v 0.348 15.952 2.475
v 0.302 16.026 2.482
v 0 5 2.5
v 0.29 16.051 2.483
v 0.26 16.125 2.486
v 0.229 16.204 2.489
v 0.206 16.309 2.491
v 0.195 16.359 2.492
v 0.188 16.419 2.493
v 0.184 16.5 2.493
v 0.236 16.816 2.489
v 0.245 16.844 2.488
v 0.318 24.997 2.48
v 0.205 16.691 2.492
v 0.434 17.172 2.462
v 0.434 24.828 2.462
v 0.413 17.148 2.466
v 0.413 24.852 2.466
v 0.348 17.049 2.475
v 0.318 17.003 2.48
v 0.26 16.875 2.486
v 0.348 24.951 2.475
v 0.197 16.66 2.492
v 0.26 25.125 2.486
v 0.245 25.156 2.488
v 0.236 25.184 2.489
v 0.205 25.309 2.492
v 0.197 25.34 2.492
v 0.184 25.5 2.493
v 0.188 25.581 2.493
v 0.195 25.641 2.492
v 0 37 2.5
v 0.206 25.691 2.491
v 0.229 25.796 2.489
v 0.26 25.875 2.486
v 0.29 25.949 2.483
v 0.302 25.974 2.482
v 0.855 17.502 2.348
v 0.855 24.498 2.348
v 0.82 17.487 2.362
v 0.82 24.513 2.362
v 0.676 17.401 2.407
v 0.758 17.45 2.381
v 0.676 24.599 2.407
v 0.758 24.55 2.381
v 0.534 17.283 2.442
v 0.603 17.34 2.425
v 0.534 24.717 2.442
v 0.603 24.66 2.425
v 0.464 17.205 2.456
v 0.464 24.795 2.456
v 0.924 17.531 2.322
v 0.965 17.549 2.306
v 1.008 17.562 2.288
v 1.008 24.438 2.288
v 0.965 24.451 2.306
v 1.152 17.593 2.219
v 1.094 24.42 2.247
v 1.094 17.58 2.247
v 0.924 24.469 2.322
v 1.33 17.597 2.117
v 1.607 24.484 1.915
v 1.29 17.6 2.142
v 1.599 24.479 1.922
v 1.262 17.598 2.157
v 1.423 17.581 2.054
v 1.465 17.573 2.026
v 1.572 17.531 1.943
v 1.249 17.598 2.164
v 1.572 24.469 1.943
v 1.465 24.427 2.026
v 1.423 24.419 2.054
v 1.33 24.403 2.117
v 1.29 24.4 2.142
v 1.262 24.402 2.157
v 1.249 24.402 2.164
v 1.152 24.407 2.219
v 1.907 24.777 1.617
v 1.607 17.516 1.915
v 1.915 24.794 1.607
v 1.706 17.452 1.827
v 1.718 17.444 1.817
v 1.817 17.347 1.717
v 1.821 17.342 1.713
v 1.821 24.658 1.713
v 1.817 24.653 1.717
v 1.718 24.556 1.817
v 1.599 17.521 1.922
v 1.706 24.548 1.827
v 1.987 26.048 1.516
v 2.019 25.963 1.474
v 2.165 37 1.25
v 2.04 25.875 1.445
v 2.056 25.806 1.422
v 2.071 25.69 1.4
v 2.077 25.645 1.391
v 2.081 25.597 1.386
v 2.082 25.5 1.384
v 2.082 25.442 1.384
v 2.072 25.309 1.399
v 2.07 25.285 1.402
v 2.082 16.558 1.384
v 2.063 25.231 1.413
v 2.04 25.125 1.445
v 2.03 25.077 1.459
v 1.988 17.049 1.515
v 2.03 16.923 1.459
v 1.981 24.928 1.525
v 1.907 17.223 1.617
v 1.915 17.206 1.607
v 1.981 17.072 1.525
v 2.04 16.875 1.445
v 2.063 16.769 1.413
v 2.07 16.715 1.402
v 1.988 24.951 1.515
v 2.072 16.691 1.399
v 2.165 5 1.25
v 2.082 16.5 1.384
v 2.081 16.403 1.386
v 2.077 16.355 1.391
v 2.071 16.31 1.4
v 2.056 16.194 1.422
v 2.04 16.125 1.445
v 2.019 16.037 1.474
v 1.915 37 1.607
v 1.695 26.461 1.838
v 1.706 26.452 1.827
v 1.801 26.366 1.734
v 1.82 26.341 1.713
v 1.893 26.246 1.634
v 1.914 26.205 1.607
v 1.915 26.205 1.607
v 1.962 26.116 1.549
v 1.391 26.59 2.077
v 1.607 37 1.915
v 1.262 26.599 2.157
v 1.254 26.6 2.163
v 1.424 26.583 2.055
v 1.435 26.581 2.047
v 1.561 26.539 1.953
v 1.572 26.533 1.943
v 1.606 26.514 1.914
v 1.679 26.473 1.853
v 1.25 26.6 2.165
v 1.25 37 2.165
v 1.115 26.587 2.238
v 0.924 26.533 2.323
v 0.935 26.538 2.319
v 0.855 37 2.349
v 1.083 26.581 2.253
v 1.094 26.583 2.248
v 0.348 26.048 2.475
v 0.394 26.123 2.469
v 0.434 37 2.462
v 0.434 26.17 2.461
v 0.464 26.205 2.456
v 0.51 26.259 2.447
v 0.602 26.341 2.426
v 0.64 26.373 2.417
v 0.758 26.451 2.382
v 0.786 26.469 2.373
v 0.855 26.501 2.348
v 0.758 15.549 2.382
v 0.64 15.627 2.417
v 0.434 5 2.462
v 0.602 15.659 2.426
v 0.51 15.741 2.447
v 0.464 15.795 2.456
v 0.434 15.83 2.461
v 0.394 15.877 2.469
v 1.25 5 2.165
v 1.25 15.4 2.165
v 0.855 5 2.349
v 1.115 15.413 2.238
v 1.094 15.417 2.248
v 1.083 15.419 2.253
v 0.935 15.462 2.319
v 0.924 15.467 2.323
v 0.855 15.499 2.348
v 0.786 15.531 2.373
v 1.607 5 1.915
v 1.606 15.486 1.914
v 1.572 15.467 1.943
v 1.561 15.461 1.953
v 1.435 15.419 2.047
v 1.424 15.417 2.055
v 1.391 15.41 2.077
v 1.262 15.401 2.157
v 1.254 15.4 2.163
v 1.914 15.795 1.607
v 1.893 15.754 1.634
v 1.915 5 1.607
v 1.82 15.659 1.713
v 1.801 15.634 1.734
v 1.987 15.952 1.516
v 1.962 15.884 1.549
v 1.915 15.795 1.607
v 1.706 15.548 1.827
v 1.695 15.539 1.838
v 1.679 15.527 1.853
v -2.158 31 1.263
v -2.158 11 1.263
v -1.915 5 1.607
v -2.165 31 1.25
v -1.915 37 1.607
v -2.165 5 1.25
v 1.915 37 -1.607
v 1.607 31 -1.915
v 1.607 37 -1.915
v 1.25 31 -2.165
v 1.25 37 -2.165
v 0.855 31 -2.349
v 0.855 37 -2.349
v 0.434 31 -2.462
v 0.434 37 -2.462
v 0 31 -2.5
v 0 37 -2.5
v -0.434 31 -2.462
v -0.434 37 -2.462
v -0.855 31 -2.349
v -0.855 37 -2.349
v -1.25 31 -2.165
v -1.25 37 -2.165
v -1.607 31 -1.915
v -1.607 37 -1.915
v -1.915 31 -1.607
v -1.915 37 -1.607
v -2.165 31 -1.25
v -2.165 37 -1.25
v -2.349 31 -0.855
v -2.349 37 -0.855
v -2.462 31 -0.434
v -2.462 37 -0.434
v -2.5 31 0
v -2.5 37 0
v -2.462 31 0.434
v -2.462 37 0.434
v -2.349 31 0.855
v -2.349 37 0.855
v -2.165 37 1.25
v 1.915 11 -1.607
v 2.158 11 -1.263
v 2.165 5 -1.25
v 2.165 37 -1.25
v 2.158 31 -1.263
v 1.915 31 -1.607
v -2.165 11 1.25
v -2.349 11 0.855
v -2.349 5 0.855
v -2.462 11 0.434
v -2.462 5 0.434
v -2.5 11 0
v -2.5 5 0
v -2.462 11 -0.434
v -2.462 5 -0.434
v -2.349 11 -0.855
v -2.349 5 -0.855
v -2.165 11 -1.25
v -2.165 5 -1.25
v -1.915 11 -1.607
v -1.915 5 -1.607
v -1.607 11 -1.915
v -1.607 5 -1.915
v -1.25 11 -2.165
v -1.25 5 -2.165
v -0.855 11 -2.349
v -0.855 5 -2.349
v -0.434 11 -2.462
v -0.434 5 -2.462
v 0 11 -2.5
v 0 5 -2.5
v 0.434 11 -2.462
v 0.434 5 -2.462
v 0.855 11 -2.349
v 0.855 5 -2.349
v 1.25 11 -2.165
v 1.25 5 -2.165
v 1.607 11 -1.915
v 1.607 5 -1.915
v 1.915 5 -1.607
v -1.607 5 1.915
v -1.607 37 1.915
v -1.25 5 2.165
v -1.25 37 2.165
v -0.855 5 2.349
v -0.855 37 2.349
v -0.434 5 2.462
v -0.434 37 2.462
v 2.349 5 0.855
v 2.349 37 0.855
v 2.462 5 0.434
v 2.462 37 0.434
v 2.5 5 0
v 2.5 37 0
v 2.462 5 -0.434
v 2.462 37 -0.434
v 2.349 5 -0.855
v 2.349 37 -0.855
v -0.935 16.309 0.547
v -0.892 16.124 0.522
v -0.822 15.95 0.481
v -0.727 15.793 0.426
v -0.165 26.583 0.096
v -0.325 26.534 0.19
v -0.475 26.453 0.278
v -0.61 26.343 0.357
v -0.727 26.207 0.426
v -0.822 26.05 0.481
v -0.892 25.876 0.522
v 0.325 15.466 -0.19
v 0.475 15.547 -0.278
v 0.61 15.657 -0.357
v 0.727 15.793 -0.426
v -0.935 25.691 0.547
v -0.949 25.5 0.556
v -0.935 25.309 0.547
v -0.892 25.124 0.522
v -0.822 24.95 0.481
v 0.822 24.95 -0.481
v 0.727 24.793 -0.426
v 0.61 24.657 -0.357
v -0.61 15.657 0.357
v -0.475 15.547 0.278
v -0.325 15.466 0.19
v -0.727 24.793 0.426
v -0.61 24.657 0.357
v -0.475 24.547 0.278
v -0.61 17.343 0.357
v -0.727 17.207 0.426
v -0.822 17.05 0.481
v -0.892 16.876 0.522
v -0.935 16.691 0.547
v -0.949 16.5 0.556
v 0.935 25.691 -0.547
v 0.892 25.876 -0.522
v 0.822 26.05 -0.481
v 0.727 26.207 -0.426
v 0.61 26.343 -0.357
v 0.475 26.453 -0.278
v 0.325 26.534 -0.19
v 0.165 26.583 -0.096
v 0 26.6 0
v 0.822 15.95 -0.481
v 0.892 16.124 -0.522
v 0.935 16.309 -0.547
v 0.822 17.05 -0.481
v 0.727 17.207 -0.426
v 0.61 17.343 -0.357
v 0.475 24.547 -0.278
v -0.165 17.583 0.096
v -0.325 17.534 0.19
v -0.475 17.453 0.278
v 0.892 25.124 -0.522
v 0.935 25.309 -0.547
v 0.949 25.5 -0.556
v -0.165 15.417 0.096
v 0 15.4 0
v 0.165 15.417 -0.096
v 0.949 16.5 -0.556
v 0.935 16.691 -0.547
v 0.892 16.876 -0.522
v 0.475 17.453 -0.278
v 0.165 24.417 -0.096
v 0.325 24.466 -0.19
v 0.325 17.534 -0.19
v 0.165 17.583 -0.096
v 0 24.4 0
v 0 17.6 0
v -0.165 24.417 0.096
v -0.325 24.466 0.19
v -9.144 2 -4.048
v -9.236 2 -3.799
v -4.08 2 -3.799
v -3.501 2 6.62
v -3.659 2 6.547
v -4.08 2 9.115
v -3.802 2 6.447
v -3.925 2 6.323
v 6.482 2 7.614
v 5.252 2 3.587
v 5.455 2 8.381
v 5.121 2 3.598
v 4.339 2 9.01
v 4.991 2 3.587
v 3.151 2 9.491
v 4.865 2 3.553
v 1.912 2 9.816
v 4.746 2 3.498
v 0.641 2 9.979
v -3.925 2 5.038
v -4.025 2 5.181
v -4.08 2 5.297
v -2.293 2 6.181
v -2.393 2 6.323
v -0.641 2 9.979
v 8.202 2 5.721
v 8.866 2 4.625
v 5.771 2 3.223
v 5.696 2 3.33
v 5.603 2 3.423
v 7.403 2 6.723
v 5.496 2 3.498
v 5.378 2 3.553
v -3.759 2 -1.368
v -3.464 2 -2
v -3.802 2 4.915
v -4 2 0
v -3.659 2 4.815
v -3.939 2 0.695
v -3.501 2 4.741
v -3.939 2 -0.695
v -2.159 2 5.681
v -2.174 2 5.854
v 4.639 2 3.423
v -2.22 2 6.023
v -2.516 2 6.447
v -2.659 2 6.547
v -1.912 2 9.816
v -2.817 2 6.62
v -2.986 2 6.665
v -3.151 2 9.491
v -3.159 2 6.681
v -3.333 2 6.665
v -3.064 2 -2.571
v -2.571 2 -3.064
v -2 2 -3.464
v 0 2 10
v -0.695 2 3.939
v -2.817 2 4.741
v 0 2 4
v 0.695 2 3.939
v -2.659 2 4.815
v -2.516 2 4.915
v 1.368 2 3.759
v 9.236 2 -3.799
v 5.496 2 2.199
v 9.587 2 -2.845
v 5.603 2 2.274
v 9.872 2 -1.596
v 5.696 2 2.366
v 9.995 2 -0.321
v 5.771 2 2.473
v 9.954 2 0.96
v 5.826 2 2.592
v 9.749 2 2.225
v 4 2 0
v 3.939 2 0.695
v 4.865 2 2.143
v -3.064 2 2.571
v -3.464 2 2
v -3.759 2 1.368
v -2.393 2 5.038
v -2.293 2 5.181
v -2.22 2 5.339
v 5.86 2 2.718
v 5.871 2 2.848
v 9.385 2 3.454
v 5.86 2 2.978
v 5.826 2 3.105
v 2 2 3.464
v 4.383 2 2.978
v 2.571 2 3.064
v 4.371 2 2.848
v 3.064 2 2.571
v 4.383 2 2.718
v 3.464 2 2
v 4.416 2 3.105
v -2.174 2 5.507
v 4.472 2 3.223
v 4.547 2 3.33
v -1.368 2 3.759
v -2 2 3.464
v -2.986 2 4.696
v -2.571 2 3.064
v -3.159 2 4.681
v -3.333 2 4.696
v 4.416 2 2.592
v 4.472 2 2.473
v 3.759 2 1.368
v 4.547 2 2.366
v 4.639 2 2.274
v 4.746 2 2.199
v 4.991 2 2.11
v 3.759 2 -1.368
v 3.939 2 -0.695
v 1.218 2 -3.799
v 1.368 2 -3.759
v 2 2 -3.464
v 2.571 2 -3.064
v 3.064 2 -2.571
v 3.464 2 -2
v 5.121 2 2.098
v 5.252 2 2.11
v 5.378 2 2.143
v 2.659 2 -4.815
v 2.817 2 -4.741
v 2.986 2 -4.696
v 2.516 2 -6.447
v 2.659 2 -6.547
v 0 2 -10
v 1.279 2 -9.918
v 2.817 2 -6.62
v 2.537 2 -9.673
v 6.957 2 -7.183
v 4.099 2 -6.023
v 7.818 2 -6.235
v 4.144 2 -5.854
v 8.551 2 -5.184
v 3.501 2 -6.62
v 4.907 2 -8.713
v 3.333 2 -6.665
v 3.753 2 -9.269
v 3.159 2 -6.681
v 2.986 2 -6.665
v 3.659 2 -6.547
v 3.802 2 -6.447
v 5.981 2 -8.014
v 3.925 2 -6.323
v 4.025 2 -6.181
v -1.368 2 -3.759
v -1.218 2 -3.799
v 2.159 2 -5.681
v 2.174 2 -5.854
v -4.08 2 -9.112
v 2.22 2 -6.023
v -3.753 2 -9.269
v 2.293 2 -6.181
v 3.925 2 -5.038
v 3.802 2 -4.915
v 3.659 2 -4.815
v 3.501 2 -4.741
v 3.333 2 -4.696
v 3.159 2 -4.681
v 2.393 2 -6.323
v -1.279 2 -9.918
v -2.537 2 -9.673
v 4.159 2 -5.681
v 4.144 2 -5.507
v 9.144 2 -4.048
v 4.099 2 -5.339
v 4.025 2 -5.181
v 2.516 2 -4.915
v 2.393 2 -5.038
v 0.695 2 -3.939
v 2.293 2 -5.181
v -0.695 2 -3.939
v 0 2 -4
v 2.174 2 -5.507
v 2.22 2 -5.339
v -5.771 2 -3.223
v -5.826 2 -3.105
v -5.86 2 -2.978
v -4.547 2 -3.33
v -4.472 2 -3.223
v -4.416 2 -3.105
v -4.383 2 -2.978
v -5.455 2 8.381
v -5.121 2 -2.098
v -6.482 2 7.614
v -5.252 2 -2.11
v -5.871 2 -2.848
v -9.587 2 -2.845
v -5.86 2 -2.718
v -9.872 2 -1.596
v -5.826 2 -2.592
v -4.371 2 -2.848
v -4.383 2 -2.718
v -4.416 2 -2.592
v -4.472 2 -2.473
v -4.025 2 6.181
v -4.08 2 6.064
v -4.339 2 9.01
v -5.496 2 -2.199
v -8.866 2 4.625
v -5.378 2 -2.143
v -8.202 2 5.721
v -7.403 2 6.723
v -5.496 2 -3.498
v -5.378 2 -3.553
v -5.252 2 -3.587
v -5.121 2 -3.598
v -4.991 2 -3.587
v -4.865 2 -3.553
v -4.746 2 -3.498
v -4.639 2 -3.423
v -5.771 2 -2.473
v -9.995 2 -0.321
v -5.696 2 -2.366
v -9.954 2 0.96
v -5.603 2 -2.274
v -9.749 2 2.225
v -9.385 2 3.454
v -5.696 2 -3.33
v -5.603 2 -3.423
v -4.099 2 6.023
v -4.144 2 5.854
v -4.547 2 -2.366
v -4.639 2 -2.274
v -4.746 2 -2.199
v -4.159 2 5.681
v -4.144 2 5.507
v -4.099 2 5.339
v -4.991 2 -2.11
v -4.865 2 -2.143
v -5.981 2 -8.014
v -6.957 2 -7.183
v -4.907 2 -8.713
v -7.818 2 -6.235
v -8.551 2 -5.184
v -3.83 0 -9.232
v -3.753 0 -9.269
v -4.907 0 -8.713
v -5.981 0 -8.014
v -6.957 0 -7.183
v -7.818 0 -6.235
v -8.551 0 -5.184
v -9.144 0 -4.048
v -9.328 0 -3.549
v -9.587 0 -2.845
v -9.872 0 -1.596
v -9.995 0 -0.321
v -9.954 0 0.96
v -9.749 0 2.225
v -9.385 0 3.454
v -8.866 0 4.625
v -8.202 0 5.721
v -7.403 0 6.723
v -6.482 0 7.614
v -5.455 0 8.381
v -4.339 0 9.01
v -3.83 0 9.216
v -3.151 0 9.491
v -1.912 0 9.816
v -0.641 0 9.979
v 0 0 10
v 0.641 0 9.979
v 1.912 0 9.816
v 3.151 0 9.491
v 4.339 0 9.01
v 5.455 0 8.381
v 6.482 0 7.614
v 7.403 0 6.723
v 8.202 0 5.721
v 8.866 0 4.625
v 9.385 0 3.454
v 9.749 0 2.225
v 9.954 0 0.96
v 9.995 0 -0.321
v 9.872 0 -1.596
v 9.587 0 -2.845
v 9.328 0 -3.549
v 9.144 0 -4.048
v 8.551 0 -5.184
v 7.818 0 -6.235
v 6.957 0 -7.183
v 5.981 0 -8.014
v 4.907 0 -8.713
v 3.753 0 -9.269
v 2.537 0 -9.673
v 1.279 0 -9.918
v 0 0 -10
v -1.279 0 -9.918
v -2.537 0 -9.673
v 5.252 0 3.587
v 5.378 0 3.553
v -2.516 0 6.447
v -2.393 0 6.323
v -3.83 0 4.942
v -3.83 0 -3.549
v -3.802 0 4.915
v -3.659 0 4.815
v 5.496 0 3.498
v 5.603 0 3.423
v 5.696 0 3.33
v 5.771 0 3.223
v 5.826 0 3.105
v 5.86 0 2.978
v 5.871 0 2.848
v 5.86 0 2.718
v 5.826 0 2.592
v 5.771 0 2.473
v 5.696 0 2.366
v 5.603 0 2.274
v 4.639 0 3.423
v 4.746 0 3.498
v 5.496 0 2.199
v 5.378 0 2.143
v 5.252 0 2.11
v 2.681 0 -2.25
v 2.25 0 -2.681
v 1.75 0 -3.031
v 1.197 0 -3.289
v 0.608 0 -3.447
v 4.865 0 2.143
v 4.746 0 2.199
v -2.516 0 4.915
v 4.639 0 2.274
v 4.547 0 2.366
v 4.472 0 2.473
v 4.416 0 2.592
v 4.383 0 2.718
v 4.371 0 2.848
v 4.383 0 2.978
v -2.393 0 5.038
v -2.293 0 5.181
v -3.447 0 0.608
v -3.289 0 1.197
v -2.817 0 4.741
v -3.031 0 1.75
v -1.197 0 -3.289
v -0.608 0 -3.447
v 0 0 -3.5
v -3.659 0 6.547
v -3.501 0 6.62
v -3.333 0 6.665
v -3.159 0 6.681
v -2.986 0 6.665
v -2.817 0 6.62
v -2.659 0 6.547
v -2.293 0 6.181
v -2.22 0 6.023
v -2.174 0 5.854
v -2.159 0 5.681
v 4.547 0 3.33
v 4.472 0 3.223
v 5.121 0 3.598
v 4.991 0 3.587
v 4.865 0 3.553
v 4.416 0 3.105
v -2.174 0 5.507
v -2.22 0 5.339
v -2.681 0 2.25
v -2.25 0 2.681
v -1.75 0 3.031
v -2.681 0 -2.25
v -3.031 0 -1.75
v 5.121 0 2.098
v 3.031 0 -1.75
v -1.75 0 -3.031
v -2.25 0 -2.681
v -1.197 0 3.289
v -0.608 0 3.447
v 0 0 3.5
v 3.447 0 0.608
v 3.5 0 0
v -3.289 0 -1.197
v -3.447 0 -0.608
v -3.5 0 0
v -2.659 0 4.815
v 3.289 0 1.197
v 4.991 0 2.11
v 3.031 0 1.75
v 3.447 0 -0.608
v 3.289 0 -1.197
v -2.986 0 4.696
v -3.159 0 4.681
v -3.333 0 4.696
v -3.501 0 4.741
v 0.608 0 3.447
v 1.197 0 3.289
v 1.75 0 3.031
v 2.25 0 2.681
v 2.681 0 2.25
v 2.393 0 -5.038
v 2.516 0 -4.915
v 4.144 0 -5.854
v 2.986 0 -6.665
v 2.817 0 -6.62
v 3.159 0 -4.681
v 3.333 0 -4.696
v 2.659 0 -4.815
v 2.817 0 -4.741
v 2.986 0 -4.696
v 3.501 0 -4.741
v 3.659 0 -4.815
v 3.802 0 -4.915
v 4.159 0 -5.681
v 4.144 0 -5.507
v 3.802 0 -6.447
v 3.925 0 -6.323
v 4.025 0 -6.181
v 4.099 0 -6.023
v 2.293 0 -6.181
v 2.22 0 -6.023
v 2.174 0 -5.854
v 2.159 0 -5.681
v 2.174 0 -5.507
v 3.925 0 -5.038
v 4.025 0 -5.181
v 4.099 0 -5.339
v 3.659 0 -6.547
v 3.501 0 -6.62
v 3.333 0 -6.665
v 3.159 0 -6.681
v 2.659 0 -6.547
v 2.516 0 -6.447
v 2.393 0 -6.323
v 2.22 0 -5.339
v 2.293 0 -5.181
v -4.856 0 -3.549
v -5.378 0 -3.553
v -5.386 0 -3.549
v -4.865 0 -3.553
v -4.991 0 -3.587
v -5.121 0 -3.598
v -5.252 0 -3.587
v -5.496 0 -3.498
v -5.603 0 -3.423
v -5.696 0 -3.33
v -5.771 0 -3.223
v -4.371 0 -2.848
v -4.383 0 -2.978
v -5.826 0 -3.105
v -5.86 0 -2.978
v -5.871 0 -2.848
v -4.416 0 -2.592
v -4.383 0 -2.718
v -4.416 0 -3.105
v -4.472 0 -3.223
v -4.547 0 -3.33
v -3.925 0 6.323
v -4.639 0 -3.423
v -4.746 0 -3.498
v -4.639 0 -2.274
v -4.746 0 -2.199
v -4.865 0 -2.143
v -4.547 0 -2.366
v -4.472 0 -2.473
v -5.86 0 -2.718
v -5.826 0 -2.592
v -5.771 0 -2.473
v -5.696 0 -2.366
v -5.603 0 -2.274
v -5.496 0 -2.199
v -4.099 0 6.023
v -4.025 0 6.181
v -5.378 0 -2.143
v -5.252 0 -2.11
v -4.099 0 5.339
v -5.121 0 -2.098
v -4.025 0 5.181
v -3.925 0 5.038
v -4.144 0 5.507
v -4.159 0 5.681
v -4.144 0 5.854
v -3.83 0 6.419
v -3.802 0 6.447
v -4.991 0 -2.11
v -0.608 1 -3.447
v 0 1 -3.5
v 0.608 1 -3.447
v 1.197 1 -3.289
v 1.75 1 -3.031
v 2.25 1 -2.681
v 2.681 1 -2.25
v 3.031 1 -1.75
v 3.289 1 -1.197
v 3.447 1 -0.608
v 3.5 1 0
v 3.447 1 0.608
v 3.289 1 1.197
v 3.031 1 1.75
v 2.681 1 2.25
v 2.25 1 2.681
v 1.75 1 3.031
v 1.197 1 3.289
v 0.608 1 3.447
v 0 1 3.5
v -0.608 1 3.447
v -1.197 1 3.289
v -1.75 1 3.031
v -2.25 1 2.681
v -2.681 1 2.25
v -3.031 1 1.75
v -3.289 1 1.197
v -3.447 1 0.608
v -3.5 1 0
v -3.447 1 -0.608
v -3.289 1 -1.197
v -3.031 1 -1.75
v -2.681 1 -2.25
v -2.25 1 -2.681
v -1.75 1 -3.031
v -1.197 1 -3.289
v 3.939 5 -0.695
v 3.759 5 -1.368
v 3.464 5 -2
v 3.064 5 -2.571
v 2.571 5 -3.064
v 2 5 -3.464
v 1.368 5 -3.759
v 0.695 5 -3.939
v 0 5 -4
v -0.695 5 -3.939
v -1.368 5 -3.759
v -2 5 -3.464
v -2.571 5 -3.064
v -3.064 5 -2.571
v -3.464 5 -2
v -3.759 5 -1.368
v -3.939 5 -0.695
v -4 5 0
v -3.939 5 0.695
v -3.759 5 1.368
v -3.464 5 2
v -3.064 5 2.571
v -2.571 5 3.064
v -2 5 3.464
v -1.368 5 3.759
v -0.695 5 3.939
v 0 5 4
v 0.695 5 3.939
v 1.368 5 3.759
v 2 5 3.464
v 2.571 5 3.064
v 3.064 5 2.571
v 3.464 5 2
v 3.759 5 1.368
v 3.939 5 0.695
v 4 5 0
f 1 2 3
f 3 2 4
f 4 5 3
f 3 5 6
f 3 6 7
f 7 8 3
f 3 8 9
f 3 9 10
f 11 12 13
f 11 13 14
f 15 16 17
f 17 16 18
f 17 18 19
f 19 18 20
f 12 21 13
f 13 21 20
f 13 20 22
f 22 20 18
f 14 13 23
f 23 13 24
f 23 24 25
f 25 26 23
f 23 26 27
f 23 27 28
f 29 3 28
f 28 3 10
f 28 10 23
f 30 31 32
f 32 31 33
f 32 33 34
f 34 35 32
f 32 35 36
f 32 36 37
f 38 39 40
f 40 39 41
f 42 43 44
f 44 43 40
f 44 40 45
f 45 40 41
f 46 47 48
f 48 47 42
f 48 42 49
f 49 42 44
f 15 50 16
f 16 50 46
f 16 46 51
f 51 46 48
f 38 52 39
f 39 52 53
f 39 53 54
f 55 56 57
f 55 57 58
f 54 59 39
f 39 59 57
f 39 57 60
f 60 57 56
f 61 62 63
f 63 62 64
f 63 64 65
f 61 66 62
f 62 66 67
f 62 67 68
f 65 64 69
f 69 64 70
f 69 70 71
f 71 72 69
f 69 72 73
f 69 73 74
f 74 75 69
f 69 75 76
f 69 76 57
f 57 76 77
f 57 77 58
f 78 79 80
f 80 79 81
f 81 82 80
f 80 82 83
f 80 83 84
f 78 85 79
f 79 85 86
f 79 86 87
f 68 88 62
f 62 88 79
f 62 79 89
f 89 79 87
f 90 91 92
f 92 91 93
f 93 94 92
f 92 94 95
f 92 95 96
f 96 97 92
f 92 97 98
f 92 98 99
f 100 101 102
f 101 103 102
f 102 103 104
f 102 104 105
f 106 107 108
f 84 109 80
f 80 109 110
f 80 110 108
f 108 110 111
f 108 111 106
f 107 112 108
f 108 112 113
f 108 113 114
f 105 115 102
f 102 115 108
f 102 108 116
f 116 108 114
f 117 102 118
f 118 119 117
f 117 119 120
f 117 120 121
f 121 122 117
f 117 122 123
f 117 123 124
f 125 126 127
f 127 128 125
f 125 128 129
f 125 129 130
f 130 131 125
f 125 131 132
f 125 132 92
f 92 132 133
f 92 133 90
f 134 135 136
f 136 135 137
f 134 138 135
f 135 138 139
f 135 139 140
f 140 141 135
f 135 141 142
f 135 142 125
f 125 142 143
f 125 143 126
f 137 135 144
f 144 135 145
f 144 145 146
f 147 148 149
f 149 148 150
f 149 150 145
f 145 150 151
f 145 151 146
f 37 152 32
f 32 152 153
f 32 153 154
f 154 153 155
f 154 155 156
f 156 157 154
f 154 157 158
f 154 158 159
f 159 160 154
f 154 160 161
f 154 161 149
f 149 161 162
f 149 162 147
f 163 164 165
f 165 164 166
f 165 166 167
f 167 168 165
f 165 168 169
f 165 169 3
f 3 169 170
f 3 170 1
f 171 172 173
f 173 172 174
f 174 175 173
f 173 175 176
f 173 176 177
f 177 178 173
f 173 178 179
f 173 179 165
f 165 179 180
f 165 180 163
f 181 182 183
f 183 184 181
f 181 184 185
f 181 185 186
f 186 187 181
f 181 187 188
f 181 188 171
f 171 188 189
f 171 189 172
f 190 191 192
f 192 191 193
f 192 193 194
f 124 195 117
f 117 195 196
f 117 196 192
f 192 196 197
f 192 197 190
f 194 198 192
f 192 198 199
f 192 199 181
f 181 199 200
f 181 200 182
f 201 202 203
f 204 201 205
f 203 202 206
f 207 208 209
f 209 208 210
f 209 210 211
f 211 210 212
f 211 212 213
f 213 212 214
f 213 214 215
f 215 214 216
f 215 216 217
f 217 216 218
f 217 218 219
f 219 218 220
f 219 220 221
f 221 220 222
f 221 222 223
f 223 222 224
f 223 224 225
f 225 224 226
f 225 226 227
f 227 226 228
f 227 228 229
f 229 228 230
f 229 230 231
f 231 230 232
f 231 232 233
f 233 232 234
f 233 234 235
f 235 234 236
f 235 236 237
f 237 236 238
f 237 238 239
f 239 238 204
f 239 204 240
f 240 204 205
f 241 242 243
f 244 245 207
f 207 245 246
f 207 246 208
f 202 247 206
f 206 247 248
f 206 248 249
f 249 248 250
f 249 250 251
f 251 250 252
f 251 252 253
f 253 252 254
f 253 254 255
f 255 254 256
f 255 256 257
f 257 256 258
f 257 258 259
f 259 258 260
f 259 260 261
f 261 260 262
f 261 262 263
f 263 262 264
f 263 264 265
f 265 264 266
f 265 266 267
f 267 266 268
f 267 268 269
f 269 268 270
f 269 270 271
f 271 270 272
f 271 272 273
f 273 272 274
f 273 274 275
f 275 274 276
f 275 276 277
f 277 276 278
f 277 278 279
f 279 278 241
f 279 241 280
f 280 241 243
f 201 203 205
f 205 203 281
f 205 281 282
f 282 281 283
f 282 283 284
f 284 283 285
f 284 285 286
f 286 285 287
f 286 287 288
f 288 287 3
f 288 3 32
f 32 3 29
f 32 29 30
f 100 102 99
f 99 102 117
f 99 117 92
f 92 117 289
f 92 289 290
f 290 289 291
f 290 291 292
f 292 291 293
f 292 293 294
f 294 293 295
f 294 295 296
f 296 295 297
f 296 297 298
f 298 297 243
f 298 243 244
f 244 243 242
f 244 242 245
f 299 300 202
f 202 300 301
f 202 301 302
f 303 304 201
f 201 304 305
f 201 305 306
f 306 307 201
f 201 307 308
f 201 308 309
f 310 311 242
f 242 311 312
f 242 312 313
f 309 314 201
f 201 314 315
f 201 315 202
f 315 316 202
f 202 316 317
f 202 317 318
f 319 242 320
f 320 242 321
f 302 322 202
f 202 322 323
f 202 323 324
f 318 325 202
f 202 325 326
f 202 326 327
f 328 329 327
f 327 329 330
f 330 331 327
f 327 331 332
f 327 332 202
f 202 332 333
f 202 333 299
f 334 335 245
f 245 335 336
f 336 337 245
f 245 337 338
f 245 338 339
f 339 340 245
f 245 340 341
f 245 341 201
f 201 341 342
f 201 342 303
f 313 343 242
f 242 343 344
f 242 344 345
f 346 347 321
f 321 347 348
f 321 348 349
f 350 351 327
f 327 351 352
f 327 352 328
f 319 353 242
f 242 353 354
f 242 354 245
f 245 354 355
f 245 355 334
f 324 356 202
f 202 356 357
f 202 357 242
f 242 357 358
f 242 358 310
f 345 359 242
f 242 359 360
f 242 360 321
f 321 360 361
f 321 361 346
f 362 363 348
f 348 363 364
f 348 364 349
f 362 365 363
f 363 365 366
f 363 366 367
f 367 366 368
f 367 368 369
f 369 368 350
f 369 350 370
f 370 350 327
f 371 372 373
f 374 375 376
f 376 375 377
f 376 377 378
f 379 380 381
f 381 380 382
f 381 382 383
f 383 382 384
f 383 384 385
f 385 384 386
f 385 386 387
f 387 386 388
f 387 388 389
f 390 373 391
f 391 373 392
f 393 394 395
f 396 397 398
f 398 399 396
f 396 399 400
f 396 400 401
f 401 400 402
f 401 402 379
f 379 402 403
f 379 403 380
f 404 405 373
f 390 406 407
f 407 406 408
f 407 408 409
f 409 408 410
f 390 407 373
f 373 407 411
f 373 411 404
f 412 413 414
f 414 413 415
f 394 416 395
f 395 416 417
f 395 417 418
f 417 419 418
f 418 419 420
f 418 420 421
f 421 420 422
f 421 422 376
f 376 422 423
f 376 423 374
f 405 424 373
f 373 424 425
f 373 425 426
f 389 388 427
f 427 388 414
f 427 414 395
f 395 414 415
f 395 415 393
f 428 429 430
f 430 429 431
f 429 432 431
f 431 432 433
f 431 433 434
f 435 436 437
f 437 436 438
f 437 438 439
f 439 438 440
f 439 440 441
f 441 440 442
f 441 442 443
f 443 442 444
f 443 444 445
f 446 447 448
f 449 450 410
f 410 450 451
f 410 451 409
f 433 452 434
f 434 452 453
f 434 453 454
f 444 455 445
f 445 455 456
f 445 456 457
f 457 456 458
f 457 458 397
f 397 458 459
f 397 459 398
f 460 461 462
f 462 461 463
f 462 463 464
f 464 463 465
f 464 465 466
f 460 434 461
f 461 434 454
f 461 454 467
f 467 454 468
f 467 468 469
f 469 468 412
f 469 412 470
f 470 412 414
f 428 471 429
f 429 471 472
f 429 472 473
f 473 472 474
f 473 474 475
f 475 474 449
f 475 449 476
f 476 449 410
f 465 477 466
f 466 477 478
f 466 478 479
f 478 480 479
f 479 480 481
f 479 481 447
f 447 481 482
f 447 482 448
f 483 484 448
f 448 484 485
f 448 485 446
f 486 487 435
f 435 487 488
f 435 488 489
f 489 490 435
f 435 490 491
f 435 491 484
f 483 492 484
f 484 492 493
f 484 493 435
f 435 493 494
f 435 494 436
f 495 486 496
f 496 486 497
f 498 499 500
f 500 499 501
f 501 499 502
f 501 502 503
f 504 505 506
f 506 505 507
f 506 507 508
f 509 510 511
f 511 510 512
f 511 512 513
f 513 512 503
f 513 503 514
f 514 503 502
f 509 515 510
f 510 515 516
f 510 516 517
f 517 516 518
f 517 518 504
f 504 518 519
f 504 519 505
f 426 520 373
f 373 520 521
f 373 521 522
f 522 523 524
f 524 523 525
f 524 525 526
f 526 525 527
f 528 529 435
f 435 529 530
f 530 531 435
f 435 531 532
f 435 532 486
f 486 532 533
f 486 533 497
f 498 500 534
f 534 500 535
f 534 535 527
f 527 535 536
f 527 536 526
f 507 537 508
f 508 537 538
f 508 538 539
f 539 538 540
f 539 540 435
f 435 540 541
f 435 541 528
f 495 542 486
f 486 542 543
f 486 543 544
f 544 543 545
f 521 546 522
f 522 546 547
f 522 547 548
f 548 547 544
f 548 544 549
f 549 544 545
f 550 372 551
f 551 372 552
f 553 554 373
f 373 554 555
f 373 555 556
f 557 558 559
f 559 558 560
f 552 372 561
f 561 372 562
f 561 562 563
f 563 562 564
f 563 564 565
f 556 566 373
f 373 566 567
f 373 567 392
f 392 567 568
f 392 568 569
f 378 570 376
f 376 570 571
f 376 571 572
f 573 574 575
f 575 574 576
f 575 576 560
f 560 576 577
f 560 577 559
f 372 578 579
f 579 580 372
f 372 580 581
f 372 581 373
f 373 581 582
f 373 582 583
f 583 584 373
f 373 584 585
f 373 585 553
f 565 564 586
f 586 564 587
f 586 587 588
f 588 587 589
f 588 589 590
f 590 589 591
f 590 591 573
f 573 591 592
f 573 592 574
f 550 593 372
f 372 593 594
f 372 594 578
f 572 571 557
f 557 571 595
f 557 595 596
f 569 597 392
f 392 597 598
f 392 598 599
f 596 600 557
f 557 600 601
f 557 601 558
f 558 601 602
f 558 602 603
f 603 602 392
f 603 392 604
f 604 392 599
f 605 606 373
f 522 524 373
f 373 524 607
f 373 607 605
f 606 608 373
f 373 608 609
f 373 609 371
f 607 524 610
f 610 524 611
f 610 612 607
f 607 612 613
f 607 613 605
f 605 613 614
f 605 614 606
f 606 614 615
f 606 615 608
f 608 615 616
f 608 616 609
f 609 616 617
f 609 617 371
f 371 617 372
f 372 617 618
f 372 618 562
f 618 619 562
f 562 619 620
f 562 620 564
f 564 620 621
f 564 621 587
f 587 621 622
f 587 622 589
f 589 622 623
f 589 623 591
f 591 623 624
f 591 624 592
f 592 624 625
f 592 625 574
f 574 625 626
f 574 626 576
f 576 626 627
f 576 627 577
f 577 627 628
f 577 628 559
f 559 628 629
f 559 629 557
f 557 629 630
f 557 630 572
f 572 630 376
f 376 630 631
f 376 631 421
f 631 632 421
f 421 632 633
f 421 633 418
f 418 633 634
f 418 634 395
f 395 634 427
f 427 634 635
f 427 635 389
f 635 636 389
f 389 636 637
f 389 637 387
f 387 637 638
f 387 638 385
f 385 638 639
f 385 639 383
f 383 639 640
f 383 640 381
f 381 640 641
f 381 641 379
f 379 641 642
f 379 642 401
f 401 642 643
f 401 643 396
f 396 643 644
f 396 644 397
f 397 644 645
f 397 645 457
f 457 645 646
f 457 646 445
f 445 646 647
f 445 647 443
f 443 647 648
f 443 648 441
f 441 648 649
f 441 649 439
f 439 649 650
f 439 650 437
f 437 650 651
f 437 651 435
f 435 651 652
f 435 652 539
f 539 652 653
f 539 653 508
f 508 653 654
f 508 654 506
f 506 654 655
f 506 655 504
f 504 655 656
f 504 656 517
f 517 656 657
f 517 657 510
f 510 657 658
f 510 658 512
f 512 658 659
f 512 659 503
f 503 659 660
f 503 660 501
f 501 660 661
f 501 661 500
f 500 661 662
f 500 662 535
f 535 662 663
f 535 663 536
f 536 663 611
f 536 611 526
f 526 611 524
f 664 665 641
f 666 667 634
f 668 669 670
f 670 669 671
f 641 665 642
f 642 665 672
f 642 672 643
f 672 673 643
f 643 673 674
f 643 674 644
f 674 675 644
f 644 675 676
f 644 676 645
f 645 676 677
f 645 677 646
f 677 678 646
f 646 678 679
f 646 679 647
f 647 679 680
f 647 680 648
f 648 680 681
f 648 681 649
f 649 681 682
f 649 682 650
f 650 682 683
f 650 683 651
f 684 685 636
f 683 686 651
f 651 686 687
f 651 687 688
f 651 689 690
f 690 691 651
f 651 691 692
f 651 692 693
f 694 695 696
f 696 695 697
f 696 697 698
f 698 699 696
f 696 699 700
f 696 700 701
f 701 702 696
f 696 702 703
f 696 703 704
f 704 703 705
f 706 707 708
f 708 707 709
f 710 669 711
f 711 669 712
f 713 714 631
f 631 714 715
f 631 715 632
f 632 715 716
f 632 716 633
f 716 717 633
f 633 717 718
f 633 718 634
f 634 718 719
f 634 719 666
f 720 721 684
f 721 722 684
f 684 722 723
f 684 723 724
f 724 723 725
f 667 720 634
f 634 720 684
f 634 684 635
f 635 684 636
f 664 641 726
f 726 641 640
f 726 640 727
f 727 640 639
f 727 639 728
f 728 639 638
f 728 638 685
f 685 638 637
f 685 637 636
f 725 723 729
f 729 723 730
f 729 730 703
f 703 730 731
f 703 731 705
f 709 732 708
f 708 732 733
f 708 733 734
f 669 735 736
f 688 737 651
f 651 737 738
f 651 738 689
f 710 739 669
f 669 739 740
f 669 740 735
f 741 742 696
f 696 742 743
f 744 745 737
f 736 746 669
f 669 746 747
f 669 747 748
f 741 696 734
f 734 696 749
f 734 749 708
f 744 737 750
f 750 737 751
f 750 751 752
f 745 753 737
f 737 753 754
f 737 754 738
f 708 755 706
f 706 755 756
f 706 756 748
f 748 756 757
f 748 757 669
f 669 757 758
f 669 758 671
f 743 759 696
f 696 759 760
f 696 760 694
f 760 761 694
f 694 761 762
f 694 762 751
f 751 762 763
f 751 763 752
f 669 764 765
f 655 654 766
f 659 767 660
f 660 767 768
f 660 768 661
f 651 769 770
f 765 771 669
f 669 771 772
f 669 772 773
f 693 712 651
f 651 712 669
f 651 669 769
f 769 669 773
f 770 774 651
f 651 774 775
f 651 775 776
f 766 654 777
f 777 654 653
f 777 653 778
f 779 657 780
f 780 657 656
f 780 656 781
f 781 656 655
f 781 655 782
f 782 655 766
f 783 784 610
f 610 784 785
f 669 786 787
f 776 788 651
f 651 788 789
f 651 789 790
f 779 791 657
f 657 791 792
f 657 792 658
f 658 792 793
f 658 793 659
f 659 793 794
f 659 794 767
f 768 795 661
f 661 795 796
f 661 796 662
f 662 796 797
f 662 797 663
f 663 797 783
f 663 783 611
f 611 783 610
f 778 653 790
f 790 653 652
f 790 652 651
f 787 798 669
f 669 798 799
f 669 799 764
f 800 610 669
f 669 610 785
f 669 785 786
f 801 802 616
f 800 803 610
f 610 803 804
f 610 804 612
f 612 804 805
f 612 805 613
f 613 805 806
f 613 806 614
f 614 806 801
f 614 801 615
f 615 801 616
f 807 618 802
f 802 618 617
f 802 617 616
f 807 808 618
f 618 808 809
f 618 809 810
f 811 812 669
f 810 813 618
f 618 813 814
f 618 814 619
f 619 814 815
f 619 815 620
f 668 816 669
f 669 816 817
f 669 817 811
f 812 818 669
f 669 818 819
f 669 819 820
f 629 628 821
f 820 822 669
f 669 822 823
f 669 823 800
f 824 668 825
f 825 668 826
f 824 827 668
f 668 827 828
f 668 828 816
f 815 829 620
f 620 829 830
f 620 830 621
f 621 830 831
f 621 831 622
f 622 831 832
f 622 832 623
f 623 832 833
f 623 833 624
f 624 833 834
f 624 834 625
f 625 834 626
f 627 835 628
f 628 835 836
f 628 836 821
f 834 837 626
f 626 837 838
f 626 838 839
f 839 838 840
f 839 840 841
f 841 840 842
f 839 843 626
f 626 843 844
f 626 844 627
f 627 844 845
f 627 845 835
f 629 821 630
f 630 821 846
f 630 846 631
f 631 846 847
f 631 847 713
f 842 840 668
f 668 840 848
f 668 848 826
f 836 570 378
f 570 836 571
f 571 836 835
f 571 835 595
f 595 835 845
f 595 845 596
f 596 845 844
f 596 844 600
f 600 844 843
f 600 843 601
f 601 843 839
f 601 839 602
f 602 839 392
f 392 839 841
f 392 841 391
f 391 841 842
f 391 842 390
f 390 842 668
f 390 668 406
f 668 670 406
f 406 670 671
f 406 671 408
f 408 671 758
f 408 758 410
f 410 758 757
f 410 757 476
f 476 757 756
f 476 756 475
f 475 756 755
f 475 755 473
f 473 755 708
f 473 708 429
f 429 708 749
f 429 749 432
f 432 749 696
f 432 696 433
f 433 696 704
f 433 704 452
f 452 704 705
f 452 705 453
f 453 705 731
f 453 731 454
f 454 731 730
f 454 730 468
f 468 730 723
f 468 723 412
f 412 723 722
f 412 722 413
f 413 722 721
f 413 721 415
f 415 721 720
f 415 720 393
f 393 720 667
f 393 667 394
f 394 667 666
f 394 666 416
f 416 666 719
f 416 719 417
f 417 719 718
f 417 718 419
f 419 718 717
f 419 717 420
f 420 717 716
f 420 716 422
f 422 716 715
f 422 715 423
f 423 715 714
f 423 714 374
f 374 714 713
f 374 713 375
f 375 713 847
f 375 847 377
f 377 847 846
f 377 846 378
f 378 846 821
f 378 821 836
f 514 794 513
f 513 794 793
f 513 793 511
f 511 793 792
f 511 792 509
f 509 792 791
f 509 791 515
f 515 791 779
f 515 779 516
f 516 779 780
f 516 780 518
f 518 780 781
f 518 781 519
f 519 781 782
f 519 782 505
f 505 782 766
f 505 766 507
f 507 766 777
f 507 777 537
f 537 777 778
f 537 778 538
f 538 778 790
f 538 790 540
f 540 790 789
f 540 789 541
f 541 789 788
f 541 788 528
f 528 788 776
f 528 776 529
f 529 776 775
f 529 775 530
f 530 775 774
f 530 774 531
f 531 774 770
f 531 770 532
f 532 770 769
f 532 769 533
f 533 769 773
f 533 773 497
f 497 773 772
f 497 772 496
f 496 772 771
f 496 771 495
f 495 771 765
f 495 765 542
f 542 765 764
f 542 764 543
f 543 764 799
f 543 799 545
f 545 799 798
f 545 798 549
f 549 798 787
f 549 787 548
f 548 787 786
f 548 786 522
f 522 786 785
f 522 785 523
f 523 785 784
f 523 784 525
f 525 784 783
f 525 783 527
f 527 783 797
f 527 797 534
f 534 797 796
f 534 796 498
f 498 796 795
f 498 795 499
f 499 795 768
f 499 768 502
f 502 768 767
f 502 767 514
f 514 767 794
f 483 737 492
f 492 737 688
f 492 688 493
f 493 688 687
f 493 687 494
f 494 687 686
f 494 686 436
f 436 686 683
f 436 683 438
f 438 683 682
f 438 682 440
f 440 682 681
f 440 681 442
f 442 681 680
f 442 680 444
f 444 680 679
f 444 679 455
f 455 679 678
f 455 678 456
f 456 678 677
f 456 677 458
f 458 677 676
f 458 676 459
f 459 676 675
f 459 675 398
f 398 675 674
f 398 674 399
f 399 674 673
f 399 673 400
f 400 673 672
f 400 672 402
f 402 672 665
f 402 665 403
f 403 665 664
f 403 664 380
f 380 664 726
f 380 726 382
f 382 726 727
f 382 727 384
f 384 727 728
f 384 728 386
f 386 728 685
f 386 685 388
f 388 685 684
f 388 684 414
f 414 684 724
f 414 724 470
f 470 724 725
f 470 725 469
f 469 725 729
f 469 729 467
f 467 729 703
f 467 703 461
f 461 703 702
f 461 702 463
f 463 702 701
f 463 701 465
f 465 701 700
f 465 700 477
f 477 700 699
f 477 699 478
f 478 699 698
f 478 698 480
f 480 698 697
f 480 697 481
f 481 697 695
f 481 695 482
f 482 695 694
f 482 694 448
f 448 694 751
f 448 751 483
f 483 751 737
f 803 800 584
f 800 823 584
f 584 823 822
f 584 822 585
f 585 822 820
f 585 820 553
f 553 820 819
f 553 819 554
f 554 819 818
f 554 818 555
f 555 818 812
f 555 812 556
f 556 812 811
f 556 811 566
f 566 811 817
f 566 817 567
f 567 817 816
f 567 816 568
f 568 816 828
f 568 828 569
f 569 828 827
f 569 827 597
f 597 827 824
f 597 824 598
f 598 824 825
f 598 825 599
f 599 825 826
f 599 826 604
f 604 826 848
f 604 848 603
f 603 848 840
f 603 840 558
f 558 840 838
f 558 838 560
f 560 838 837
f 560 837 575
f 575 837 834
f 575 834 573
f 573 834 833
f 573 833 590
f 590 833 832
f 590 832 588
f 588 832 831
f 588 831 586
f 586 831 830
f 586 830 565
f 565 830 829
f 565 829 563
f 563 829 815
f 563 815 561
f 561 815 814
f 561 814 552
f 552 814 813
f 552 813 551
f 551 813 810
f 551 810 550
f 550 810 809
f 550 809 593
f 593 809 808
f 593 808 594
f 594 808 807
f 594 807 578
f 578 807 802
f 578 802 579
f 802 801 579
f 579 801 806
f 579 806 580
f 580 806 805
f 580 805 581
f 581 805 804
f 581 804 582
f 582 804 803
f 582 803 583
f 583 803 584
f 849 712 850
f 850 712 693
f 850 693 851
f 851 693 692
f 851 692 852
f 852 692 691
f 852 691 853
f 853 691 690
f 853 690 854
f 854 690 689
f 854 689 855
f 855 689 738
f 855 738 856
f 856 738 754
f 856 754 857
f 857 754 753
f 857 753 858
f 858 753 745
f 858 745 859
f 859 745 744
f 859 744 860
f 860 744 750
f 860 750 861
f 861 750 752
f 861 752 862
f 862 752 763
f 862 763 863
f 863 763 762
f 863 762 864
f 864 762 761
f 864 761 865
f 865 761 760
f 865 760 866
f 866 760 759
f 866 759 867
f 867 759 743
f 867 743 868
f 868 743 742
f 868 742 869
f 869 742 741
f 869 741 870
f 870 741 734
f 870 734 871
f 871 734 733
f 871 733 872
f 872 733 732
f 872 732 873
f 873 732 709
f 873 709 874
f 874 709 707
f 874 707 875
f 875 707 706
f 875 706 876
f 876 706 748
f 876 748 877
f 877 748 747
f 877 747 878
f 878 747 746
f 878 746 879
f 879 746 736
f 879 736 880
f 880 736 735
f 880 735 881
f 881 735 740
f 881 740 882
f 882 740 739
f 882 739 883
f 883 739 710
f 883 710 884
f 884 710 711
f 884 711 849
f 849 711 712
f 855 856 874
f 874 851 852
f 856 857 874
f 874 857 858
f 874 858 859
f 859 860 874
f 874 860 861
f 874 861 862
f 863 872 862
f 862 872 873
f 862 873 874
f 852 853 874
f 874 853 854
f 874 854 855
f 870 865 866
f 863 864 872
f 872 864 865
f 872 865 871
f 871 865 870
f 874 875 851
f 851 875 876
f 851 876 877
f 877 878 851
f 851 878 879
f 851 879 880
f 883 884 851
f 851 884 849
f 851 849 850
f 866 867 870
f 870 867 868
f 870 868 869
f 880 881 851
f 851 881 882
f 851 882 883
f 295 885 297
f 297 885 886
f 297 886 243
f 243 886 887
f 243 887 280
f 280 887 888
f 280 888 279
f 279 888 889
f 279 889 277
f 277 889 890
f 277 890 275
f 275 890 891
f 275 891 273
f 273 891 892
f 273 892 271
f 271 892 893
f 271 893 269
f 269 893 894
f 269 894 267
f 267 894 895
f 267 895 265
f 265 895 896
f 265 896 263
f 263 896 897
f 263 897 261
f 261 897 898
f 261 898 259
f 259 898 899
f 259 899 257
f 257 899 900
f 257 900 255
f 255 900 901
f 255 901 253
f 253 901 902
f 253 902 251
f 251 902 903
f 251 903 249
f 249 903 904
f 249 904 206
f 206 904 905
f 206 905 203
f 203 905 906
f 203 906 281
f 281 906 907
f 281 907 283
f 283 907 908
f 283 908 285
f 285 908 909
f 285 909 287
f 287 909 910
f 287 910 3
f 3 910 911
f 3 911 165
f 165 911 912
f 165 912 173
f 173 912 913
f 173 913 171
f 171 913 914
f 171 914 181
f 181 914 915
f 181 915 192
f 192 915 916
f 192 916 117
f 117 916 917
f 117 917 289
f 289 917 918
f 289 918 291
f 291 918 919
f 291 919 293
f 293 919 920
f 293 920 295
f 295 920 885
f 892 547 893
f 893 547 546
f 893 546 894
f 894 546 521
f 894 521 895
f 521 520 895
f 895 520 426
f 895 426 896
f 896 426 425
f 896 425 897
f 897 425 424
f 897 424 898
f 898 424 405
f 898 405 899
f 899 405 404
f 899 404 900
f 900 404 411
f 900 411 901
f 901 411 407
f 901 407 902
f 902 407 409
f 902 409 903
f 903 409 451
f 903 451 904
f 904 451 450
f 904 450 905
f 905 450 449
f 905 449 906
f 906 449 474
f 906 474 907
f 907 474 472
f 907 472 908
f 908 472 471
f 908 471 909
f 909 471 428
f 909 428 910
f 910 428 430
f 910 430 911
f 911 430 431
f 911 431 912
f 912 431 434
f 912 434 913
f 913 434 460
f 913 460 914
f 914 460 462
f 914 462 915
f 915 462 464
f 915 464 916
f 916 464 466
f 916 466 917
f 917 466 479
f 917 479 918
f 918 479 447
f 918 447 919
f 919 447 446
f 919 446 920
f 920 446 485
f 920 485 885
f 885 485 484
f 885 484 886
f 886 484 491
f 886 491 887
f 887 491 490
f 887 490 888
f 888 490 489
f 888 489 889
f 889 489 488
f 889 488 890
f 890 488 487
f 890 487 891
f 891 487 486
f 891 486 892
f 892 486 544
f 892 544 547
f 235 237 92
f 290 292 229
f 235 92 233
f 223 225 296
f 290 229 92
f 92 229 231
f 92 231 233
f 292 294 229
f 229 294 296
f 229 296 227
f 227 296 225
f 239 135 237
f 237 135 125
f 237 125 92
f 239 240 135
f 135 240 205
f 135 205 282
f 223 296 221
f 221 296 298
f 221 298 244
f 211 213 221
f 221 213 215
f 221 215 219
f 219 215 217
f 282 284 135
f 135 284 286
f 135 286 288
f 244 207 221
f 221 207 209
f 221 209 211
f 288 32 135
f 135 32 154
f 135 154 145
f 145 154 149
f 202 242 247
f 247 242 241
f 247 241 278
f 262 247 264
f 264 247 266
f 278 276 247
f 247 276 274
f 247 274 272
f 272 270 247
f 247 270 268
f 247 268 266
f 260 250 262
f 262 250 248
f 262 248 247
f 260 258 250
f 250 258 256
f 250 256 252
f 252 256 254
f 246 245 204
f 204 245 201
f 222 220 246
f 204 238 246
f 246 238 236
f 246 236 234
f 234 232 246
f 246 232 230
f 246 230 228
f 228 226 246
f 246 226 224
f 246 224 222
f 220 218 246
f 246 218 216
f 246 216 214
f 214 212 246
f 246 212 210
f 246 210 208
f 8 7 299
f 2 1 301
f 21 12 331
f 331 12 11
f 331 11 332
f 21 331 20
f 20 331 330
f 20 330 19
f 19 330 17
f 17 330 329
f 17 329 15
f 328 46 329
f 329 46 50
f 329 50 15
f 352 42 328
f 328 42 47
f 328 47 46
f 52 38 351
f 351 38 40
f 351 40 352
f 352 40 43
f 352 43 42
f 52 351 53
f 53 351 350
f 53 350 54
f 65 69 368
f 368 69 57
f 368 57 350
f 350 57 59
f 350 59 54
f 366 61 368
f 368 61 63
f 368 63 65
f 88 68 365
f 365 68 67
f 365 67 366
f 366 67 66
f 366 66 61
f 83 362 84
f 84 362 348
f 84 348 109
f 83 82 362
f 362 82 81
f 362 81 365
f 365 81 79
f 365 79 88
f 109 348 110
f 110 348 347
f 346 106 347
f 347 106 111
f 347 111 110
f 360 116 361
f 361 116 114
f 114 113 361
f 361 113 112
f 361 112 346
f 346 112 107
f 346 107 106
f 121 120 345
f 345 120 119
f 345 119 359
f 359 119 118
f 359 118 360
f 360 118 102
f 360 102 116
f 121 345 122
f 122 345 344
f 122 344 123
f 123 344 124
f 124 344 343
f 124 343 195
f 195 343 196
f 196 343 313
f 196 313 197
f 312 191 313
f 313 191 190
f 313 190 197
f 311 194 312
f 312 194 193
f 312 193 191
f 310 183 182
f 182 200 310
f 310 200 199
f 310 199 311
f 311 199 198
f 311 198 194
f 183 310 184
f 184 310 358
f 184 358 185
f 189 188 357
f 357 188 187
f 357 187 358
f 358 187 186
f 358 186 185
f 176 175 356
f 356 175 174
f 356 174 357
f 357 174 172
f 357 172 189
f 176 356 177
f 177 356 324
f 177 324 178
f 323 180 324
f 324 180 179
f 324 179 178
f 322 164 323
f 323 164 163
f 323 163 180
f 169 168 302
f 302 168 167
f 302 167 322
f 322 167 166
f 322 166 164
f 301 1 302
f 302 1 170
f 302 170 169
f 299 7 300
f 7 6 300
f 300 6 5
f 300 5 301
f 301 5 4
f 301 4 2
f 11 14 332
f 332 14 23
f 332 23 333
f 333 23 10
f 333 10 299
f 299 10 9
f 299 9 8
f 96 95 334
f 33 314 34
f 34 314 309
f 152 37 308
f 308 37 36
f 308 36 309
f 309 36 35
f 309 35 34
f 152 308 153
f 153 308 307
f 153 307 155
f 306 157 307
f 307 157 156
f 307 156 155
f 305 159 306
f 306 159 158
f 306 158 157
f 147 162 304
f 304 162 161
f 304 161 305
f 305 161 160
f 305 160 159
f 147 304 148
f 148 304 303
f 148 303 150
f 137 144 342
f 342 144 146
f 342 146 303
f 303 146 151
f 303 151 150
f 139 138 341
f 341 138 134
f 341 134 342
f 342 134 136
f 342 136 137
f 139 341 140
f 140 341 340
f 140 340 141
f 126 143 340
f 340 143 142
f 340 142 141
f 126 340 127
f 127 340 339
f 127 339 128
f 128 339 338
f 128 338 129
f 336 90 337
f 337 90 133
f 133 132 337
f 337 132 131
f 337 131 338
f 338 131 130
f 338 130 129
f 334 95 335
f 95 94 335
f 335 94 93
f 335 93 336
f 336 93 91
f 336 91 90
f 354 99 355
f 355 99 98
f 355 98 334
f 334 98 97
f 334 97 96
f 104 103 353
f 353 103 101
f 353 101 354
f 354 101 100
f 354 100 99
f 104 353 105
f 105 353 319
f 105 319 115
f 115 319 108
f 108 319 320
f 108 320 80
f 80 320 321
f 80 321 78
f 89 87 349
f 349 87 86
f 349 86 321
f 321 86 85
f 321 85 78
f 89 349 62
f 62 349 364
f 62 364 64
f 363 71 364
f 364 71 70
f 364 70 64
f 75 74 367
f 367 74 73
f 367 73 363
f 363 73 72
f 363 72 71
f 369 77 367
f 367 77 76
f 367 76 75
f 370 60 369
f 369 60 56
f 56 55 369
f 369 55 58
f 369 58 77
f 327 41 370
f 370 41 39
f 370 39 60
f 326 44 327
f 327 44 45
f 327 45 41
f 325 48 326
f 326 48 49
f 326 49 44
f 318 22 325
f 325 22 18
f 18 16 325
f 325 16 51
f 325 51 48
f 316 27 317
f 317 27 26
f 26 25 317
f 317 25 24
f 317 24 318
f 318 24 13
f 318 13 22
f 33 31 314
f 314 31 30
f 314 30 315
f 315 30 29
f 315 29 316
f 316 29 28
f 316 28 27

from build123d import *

# Parameters (mm, degrees)
SKETCH_1_R          = 10
EXTRUDE_1_DEPTH     = 2
SKETCH_2_R          = 2.5
EXTRUDE_2_DEPTH     = 35
SKETCH_3_R          = 1
SKETCH_3_R_2        = 0.75
CUT_EXTRUDE_1_DEPTH = 3
SKETCH_4_R          = 3.5
CUT_EXTRUDE_2_DEPTH = 1
SKETCH_6_R          = 4
EXTRUDE_4_DEPTH     = 3
CUT_EXTRUDE_START   = -26
CUT_EXTRUDE_3_DEPTH = 20
SKETCH_12_R         = 1.1
CUT_EXTRUDE_6_DEPTH = 3


with BuildPart() as part:
    # 草图1 → 凸台-拉伸1 (new body)
    with BuildSketch(Plane(origin=(0, 0, 0), x_dir=(1, 0, 0), z_dir=(0, 1, 0))):
        with Locations(Location((0, 0, 0), (0, 0, 270))):
            Circle(SKETCH_1_R)
    extrude(amount=EXTRUDE_1_DEPTH)

    # 草图2 → 凸台-拉伸2 (add)
    with BuildSketch(Plane(origin=(0, 2, 0), x_dir=(1, 0, 0), z_dir=(0, 1, 0))):
        with Locations(Location((0, 0, 0), (0, 0, 270))):
            Circle(SKETCH_2_R)
    extrude(amount=EXTRUDE_2_DEPTH)

    # 草图3 → 切除-拉伸1 (cut)
    with BuildSketch(Plane.XZ):
        with Locations(Location((-3.15926406, 5.68058541, 0), (0, 0, 270))):
            Circle(SKETCH_3_R)
        with Locations(Location((3.15926406, -5.68058541, 0), (0, 0, 90))):
            Circle(SKETCH_3_R)
        with Locations(Location((5.121266231, 2.84819806, 0), (0, 0, 270))):
            Circle(SKETCH_3_R_2)
        with Locations(Location((-5.121266231, -2.84819806, 0), (0, 0, 90))):
            Circle(SKETCH_3_R_2)
    extrude(amount=-CUT_EXTRUDE_1_DEPTH, mode=Mode.SUBTRACT)

    # 草图4 → 切除-拉伸2 (cut)
    with BuildSketch(Plane.XZ):
        with Locations(Location((0, 0, 0), (0, 0, 270))):
            Circle(SKETCH_4_R)
    extrude(amount=-CUT_EXTRUDE_2_DEPTH, mode=Mode.SUBTRACT)

    # 草图6 → 凸台-拉伸4 (add)
    with BuildSketch(Plane(origin=(0, 2, 0), x_dir=(1, 0, 0), z_dir=(0, 1, 0))):
        with Locations(Location((0, 0, 0), (0, 0, 270))):
            Circle(SKETCH_6_R)
    extrude(amount=EXTRUDE_4_DEPTH)

    # 草图7 → 切除-拉伸3 (cut)
    with BuildSketch(Plane(origin=(0, 37, 0), x_dir=(1, 0, 0), z_dir=(0, 1, 0)).offset(CUT_EXTRUDE_START)):
        with BuildLine():
            Line((2.157730635, 1.26261574), (-2.157730635, -1.26261574))
            ThreePointArc((-2.157730635, -1.26261574), (-1.26261574, 2.157730635), (2.157730635, 1.26261574))
        make_face()
    extrude(amount=CUT_EXTRUDE_3_DEPTH, mode=Mode.SUBTRACT)

    # 草图12 → 切除-拉伸6 (cut)
    with BuildSketch(Plane(origin=(0, 0, 0), x_dir=(-0.8630922540018389, 0, 0.5050462959789186), z_dir=(-0.5050462959789186, 0, -0.8630922540018389))):
        with Locations((0, 16.5)):
            Circle(SKETCH_12_R)
    cut_extrude_6 = extrude(amount=-CUT_EXTRUDE_6_DEPTH, mode=Mode.SUBTRACT)

    # 镜向1: 切除-拉伸6 across plane
    add(cut_extrude_6.mirror(Plane.ZX.offset(21)), mode=Mode.SUBTRACT)


solid = part.part
